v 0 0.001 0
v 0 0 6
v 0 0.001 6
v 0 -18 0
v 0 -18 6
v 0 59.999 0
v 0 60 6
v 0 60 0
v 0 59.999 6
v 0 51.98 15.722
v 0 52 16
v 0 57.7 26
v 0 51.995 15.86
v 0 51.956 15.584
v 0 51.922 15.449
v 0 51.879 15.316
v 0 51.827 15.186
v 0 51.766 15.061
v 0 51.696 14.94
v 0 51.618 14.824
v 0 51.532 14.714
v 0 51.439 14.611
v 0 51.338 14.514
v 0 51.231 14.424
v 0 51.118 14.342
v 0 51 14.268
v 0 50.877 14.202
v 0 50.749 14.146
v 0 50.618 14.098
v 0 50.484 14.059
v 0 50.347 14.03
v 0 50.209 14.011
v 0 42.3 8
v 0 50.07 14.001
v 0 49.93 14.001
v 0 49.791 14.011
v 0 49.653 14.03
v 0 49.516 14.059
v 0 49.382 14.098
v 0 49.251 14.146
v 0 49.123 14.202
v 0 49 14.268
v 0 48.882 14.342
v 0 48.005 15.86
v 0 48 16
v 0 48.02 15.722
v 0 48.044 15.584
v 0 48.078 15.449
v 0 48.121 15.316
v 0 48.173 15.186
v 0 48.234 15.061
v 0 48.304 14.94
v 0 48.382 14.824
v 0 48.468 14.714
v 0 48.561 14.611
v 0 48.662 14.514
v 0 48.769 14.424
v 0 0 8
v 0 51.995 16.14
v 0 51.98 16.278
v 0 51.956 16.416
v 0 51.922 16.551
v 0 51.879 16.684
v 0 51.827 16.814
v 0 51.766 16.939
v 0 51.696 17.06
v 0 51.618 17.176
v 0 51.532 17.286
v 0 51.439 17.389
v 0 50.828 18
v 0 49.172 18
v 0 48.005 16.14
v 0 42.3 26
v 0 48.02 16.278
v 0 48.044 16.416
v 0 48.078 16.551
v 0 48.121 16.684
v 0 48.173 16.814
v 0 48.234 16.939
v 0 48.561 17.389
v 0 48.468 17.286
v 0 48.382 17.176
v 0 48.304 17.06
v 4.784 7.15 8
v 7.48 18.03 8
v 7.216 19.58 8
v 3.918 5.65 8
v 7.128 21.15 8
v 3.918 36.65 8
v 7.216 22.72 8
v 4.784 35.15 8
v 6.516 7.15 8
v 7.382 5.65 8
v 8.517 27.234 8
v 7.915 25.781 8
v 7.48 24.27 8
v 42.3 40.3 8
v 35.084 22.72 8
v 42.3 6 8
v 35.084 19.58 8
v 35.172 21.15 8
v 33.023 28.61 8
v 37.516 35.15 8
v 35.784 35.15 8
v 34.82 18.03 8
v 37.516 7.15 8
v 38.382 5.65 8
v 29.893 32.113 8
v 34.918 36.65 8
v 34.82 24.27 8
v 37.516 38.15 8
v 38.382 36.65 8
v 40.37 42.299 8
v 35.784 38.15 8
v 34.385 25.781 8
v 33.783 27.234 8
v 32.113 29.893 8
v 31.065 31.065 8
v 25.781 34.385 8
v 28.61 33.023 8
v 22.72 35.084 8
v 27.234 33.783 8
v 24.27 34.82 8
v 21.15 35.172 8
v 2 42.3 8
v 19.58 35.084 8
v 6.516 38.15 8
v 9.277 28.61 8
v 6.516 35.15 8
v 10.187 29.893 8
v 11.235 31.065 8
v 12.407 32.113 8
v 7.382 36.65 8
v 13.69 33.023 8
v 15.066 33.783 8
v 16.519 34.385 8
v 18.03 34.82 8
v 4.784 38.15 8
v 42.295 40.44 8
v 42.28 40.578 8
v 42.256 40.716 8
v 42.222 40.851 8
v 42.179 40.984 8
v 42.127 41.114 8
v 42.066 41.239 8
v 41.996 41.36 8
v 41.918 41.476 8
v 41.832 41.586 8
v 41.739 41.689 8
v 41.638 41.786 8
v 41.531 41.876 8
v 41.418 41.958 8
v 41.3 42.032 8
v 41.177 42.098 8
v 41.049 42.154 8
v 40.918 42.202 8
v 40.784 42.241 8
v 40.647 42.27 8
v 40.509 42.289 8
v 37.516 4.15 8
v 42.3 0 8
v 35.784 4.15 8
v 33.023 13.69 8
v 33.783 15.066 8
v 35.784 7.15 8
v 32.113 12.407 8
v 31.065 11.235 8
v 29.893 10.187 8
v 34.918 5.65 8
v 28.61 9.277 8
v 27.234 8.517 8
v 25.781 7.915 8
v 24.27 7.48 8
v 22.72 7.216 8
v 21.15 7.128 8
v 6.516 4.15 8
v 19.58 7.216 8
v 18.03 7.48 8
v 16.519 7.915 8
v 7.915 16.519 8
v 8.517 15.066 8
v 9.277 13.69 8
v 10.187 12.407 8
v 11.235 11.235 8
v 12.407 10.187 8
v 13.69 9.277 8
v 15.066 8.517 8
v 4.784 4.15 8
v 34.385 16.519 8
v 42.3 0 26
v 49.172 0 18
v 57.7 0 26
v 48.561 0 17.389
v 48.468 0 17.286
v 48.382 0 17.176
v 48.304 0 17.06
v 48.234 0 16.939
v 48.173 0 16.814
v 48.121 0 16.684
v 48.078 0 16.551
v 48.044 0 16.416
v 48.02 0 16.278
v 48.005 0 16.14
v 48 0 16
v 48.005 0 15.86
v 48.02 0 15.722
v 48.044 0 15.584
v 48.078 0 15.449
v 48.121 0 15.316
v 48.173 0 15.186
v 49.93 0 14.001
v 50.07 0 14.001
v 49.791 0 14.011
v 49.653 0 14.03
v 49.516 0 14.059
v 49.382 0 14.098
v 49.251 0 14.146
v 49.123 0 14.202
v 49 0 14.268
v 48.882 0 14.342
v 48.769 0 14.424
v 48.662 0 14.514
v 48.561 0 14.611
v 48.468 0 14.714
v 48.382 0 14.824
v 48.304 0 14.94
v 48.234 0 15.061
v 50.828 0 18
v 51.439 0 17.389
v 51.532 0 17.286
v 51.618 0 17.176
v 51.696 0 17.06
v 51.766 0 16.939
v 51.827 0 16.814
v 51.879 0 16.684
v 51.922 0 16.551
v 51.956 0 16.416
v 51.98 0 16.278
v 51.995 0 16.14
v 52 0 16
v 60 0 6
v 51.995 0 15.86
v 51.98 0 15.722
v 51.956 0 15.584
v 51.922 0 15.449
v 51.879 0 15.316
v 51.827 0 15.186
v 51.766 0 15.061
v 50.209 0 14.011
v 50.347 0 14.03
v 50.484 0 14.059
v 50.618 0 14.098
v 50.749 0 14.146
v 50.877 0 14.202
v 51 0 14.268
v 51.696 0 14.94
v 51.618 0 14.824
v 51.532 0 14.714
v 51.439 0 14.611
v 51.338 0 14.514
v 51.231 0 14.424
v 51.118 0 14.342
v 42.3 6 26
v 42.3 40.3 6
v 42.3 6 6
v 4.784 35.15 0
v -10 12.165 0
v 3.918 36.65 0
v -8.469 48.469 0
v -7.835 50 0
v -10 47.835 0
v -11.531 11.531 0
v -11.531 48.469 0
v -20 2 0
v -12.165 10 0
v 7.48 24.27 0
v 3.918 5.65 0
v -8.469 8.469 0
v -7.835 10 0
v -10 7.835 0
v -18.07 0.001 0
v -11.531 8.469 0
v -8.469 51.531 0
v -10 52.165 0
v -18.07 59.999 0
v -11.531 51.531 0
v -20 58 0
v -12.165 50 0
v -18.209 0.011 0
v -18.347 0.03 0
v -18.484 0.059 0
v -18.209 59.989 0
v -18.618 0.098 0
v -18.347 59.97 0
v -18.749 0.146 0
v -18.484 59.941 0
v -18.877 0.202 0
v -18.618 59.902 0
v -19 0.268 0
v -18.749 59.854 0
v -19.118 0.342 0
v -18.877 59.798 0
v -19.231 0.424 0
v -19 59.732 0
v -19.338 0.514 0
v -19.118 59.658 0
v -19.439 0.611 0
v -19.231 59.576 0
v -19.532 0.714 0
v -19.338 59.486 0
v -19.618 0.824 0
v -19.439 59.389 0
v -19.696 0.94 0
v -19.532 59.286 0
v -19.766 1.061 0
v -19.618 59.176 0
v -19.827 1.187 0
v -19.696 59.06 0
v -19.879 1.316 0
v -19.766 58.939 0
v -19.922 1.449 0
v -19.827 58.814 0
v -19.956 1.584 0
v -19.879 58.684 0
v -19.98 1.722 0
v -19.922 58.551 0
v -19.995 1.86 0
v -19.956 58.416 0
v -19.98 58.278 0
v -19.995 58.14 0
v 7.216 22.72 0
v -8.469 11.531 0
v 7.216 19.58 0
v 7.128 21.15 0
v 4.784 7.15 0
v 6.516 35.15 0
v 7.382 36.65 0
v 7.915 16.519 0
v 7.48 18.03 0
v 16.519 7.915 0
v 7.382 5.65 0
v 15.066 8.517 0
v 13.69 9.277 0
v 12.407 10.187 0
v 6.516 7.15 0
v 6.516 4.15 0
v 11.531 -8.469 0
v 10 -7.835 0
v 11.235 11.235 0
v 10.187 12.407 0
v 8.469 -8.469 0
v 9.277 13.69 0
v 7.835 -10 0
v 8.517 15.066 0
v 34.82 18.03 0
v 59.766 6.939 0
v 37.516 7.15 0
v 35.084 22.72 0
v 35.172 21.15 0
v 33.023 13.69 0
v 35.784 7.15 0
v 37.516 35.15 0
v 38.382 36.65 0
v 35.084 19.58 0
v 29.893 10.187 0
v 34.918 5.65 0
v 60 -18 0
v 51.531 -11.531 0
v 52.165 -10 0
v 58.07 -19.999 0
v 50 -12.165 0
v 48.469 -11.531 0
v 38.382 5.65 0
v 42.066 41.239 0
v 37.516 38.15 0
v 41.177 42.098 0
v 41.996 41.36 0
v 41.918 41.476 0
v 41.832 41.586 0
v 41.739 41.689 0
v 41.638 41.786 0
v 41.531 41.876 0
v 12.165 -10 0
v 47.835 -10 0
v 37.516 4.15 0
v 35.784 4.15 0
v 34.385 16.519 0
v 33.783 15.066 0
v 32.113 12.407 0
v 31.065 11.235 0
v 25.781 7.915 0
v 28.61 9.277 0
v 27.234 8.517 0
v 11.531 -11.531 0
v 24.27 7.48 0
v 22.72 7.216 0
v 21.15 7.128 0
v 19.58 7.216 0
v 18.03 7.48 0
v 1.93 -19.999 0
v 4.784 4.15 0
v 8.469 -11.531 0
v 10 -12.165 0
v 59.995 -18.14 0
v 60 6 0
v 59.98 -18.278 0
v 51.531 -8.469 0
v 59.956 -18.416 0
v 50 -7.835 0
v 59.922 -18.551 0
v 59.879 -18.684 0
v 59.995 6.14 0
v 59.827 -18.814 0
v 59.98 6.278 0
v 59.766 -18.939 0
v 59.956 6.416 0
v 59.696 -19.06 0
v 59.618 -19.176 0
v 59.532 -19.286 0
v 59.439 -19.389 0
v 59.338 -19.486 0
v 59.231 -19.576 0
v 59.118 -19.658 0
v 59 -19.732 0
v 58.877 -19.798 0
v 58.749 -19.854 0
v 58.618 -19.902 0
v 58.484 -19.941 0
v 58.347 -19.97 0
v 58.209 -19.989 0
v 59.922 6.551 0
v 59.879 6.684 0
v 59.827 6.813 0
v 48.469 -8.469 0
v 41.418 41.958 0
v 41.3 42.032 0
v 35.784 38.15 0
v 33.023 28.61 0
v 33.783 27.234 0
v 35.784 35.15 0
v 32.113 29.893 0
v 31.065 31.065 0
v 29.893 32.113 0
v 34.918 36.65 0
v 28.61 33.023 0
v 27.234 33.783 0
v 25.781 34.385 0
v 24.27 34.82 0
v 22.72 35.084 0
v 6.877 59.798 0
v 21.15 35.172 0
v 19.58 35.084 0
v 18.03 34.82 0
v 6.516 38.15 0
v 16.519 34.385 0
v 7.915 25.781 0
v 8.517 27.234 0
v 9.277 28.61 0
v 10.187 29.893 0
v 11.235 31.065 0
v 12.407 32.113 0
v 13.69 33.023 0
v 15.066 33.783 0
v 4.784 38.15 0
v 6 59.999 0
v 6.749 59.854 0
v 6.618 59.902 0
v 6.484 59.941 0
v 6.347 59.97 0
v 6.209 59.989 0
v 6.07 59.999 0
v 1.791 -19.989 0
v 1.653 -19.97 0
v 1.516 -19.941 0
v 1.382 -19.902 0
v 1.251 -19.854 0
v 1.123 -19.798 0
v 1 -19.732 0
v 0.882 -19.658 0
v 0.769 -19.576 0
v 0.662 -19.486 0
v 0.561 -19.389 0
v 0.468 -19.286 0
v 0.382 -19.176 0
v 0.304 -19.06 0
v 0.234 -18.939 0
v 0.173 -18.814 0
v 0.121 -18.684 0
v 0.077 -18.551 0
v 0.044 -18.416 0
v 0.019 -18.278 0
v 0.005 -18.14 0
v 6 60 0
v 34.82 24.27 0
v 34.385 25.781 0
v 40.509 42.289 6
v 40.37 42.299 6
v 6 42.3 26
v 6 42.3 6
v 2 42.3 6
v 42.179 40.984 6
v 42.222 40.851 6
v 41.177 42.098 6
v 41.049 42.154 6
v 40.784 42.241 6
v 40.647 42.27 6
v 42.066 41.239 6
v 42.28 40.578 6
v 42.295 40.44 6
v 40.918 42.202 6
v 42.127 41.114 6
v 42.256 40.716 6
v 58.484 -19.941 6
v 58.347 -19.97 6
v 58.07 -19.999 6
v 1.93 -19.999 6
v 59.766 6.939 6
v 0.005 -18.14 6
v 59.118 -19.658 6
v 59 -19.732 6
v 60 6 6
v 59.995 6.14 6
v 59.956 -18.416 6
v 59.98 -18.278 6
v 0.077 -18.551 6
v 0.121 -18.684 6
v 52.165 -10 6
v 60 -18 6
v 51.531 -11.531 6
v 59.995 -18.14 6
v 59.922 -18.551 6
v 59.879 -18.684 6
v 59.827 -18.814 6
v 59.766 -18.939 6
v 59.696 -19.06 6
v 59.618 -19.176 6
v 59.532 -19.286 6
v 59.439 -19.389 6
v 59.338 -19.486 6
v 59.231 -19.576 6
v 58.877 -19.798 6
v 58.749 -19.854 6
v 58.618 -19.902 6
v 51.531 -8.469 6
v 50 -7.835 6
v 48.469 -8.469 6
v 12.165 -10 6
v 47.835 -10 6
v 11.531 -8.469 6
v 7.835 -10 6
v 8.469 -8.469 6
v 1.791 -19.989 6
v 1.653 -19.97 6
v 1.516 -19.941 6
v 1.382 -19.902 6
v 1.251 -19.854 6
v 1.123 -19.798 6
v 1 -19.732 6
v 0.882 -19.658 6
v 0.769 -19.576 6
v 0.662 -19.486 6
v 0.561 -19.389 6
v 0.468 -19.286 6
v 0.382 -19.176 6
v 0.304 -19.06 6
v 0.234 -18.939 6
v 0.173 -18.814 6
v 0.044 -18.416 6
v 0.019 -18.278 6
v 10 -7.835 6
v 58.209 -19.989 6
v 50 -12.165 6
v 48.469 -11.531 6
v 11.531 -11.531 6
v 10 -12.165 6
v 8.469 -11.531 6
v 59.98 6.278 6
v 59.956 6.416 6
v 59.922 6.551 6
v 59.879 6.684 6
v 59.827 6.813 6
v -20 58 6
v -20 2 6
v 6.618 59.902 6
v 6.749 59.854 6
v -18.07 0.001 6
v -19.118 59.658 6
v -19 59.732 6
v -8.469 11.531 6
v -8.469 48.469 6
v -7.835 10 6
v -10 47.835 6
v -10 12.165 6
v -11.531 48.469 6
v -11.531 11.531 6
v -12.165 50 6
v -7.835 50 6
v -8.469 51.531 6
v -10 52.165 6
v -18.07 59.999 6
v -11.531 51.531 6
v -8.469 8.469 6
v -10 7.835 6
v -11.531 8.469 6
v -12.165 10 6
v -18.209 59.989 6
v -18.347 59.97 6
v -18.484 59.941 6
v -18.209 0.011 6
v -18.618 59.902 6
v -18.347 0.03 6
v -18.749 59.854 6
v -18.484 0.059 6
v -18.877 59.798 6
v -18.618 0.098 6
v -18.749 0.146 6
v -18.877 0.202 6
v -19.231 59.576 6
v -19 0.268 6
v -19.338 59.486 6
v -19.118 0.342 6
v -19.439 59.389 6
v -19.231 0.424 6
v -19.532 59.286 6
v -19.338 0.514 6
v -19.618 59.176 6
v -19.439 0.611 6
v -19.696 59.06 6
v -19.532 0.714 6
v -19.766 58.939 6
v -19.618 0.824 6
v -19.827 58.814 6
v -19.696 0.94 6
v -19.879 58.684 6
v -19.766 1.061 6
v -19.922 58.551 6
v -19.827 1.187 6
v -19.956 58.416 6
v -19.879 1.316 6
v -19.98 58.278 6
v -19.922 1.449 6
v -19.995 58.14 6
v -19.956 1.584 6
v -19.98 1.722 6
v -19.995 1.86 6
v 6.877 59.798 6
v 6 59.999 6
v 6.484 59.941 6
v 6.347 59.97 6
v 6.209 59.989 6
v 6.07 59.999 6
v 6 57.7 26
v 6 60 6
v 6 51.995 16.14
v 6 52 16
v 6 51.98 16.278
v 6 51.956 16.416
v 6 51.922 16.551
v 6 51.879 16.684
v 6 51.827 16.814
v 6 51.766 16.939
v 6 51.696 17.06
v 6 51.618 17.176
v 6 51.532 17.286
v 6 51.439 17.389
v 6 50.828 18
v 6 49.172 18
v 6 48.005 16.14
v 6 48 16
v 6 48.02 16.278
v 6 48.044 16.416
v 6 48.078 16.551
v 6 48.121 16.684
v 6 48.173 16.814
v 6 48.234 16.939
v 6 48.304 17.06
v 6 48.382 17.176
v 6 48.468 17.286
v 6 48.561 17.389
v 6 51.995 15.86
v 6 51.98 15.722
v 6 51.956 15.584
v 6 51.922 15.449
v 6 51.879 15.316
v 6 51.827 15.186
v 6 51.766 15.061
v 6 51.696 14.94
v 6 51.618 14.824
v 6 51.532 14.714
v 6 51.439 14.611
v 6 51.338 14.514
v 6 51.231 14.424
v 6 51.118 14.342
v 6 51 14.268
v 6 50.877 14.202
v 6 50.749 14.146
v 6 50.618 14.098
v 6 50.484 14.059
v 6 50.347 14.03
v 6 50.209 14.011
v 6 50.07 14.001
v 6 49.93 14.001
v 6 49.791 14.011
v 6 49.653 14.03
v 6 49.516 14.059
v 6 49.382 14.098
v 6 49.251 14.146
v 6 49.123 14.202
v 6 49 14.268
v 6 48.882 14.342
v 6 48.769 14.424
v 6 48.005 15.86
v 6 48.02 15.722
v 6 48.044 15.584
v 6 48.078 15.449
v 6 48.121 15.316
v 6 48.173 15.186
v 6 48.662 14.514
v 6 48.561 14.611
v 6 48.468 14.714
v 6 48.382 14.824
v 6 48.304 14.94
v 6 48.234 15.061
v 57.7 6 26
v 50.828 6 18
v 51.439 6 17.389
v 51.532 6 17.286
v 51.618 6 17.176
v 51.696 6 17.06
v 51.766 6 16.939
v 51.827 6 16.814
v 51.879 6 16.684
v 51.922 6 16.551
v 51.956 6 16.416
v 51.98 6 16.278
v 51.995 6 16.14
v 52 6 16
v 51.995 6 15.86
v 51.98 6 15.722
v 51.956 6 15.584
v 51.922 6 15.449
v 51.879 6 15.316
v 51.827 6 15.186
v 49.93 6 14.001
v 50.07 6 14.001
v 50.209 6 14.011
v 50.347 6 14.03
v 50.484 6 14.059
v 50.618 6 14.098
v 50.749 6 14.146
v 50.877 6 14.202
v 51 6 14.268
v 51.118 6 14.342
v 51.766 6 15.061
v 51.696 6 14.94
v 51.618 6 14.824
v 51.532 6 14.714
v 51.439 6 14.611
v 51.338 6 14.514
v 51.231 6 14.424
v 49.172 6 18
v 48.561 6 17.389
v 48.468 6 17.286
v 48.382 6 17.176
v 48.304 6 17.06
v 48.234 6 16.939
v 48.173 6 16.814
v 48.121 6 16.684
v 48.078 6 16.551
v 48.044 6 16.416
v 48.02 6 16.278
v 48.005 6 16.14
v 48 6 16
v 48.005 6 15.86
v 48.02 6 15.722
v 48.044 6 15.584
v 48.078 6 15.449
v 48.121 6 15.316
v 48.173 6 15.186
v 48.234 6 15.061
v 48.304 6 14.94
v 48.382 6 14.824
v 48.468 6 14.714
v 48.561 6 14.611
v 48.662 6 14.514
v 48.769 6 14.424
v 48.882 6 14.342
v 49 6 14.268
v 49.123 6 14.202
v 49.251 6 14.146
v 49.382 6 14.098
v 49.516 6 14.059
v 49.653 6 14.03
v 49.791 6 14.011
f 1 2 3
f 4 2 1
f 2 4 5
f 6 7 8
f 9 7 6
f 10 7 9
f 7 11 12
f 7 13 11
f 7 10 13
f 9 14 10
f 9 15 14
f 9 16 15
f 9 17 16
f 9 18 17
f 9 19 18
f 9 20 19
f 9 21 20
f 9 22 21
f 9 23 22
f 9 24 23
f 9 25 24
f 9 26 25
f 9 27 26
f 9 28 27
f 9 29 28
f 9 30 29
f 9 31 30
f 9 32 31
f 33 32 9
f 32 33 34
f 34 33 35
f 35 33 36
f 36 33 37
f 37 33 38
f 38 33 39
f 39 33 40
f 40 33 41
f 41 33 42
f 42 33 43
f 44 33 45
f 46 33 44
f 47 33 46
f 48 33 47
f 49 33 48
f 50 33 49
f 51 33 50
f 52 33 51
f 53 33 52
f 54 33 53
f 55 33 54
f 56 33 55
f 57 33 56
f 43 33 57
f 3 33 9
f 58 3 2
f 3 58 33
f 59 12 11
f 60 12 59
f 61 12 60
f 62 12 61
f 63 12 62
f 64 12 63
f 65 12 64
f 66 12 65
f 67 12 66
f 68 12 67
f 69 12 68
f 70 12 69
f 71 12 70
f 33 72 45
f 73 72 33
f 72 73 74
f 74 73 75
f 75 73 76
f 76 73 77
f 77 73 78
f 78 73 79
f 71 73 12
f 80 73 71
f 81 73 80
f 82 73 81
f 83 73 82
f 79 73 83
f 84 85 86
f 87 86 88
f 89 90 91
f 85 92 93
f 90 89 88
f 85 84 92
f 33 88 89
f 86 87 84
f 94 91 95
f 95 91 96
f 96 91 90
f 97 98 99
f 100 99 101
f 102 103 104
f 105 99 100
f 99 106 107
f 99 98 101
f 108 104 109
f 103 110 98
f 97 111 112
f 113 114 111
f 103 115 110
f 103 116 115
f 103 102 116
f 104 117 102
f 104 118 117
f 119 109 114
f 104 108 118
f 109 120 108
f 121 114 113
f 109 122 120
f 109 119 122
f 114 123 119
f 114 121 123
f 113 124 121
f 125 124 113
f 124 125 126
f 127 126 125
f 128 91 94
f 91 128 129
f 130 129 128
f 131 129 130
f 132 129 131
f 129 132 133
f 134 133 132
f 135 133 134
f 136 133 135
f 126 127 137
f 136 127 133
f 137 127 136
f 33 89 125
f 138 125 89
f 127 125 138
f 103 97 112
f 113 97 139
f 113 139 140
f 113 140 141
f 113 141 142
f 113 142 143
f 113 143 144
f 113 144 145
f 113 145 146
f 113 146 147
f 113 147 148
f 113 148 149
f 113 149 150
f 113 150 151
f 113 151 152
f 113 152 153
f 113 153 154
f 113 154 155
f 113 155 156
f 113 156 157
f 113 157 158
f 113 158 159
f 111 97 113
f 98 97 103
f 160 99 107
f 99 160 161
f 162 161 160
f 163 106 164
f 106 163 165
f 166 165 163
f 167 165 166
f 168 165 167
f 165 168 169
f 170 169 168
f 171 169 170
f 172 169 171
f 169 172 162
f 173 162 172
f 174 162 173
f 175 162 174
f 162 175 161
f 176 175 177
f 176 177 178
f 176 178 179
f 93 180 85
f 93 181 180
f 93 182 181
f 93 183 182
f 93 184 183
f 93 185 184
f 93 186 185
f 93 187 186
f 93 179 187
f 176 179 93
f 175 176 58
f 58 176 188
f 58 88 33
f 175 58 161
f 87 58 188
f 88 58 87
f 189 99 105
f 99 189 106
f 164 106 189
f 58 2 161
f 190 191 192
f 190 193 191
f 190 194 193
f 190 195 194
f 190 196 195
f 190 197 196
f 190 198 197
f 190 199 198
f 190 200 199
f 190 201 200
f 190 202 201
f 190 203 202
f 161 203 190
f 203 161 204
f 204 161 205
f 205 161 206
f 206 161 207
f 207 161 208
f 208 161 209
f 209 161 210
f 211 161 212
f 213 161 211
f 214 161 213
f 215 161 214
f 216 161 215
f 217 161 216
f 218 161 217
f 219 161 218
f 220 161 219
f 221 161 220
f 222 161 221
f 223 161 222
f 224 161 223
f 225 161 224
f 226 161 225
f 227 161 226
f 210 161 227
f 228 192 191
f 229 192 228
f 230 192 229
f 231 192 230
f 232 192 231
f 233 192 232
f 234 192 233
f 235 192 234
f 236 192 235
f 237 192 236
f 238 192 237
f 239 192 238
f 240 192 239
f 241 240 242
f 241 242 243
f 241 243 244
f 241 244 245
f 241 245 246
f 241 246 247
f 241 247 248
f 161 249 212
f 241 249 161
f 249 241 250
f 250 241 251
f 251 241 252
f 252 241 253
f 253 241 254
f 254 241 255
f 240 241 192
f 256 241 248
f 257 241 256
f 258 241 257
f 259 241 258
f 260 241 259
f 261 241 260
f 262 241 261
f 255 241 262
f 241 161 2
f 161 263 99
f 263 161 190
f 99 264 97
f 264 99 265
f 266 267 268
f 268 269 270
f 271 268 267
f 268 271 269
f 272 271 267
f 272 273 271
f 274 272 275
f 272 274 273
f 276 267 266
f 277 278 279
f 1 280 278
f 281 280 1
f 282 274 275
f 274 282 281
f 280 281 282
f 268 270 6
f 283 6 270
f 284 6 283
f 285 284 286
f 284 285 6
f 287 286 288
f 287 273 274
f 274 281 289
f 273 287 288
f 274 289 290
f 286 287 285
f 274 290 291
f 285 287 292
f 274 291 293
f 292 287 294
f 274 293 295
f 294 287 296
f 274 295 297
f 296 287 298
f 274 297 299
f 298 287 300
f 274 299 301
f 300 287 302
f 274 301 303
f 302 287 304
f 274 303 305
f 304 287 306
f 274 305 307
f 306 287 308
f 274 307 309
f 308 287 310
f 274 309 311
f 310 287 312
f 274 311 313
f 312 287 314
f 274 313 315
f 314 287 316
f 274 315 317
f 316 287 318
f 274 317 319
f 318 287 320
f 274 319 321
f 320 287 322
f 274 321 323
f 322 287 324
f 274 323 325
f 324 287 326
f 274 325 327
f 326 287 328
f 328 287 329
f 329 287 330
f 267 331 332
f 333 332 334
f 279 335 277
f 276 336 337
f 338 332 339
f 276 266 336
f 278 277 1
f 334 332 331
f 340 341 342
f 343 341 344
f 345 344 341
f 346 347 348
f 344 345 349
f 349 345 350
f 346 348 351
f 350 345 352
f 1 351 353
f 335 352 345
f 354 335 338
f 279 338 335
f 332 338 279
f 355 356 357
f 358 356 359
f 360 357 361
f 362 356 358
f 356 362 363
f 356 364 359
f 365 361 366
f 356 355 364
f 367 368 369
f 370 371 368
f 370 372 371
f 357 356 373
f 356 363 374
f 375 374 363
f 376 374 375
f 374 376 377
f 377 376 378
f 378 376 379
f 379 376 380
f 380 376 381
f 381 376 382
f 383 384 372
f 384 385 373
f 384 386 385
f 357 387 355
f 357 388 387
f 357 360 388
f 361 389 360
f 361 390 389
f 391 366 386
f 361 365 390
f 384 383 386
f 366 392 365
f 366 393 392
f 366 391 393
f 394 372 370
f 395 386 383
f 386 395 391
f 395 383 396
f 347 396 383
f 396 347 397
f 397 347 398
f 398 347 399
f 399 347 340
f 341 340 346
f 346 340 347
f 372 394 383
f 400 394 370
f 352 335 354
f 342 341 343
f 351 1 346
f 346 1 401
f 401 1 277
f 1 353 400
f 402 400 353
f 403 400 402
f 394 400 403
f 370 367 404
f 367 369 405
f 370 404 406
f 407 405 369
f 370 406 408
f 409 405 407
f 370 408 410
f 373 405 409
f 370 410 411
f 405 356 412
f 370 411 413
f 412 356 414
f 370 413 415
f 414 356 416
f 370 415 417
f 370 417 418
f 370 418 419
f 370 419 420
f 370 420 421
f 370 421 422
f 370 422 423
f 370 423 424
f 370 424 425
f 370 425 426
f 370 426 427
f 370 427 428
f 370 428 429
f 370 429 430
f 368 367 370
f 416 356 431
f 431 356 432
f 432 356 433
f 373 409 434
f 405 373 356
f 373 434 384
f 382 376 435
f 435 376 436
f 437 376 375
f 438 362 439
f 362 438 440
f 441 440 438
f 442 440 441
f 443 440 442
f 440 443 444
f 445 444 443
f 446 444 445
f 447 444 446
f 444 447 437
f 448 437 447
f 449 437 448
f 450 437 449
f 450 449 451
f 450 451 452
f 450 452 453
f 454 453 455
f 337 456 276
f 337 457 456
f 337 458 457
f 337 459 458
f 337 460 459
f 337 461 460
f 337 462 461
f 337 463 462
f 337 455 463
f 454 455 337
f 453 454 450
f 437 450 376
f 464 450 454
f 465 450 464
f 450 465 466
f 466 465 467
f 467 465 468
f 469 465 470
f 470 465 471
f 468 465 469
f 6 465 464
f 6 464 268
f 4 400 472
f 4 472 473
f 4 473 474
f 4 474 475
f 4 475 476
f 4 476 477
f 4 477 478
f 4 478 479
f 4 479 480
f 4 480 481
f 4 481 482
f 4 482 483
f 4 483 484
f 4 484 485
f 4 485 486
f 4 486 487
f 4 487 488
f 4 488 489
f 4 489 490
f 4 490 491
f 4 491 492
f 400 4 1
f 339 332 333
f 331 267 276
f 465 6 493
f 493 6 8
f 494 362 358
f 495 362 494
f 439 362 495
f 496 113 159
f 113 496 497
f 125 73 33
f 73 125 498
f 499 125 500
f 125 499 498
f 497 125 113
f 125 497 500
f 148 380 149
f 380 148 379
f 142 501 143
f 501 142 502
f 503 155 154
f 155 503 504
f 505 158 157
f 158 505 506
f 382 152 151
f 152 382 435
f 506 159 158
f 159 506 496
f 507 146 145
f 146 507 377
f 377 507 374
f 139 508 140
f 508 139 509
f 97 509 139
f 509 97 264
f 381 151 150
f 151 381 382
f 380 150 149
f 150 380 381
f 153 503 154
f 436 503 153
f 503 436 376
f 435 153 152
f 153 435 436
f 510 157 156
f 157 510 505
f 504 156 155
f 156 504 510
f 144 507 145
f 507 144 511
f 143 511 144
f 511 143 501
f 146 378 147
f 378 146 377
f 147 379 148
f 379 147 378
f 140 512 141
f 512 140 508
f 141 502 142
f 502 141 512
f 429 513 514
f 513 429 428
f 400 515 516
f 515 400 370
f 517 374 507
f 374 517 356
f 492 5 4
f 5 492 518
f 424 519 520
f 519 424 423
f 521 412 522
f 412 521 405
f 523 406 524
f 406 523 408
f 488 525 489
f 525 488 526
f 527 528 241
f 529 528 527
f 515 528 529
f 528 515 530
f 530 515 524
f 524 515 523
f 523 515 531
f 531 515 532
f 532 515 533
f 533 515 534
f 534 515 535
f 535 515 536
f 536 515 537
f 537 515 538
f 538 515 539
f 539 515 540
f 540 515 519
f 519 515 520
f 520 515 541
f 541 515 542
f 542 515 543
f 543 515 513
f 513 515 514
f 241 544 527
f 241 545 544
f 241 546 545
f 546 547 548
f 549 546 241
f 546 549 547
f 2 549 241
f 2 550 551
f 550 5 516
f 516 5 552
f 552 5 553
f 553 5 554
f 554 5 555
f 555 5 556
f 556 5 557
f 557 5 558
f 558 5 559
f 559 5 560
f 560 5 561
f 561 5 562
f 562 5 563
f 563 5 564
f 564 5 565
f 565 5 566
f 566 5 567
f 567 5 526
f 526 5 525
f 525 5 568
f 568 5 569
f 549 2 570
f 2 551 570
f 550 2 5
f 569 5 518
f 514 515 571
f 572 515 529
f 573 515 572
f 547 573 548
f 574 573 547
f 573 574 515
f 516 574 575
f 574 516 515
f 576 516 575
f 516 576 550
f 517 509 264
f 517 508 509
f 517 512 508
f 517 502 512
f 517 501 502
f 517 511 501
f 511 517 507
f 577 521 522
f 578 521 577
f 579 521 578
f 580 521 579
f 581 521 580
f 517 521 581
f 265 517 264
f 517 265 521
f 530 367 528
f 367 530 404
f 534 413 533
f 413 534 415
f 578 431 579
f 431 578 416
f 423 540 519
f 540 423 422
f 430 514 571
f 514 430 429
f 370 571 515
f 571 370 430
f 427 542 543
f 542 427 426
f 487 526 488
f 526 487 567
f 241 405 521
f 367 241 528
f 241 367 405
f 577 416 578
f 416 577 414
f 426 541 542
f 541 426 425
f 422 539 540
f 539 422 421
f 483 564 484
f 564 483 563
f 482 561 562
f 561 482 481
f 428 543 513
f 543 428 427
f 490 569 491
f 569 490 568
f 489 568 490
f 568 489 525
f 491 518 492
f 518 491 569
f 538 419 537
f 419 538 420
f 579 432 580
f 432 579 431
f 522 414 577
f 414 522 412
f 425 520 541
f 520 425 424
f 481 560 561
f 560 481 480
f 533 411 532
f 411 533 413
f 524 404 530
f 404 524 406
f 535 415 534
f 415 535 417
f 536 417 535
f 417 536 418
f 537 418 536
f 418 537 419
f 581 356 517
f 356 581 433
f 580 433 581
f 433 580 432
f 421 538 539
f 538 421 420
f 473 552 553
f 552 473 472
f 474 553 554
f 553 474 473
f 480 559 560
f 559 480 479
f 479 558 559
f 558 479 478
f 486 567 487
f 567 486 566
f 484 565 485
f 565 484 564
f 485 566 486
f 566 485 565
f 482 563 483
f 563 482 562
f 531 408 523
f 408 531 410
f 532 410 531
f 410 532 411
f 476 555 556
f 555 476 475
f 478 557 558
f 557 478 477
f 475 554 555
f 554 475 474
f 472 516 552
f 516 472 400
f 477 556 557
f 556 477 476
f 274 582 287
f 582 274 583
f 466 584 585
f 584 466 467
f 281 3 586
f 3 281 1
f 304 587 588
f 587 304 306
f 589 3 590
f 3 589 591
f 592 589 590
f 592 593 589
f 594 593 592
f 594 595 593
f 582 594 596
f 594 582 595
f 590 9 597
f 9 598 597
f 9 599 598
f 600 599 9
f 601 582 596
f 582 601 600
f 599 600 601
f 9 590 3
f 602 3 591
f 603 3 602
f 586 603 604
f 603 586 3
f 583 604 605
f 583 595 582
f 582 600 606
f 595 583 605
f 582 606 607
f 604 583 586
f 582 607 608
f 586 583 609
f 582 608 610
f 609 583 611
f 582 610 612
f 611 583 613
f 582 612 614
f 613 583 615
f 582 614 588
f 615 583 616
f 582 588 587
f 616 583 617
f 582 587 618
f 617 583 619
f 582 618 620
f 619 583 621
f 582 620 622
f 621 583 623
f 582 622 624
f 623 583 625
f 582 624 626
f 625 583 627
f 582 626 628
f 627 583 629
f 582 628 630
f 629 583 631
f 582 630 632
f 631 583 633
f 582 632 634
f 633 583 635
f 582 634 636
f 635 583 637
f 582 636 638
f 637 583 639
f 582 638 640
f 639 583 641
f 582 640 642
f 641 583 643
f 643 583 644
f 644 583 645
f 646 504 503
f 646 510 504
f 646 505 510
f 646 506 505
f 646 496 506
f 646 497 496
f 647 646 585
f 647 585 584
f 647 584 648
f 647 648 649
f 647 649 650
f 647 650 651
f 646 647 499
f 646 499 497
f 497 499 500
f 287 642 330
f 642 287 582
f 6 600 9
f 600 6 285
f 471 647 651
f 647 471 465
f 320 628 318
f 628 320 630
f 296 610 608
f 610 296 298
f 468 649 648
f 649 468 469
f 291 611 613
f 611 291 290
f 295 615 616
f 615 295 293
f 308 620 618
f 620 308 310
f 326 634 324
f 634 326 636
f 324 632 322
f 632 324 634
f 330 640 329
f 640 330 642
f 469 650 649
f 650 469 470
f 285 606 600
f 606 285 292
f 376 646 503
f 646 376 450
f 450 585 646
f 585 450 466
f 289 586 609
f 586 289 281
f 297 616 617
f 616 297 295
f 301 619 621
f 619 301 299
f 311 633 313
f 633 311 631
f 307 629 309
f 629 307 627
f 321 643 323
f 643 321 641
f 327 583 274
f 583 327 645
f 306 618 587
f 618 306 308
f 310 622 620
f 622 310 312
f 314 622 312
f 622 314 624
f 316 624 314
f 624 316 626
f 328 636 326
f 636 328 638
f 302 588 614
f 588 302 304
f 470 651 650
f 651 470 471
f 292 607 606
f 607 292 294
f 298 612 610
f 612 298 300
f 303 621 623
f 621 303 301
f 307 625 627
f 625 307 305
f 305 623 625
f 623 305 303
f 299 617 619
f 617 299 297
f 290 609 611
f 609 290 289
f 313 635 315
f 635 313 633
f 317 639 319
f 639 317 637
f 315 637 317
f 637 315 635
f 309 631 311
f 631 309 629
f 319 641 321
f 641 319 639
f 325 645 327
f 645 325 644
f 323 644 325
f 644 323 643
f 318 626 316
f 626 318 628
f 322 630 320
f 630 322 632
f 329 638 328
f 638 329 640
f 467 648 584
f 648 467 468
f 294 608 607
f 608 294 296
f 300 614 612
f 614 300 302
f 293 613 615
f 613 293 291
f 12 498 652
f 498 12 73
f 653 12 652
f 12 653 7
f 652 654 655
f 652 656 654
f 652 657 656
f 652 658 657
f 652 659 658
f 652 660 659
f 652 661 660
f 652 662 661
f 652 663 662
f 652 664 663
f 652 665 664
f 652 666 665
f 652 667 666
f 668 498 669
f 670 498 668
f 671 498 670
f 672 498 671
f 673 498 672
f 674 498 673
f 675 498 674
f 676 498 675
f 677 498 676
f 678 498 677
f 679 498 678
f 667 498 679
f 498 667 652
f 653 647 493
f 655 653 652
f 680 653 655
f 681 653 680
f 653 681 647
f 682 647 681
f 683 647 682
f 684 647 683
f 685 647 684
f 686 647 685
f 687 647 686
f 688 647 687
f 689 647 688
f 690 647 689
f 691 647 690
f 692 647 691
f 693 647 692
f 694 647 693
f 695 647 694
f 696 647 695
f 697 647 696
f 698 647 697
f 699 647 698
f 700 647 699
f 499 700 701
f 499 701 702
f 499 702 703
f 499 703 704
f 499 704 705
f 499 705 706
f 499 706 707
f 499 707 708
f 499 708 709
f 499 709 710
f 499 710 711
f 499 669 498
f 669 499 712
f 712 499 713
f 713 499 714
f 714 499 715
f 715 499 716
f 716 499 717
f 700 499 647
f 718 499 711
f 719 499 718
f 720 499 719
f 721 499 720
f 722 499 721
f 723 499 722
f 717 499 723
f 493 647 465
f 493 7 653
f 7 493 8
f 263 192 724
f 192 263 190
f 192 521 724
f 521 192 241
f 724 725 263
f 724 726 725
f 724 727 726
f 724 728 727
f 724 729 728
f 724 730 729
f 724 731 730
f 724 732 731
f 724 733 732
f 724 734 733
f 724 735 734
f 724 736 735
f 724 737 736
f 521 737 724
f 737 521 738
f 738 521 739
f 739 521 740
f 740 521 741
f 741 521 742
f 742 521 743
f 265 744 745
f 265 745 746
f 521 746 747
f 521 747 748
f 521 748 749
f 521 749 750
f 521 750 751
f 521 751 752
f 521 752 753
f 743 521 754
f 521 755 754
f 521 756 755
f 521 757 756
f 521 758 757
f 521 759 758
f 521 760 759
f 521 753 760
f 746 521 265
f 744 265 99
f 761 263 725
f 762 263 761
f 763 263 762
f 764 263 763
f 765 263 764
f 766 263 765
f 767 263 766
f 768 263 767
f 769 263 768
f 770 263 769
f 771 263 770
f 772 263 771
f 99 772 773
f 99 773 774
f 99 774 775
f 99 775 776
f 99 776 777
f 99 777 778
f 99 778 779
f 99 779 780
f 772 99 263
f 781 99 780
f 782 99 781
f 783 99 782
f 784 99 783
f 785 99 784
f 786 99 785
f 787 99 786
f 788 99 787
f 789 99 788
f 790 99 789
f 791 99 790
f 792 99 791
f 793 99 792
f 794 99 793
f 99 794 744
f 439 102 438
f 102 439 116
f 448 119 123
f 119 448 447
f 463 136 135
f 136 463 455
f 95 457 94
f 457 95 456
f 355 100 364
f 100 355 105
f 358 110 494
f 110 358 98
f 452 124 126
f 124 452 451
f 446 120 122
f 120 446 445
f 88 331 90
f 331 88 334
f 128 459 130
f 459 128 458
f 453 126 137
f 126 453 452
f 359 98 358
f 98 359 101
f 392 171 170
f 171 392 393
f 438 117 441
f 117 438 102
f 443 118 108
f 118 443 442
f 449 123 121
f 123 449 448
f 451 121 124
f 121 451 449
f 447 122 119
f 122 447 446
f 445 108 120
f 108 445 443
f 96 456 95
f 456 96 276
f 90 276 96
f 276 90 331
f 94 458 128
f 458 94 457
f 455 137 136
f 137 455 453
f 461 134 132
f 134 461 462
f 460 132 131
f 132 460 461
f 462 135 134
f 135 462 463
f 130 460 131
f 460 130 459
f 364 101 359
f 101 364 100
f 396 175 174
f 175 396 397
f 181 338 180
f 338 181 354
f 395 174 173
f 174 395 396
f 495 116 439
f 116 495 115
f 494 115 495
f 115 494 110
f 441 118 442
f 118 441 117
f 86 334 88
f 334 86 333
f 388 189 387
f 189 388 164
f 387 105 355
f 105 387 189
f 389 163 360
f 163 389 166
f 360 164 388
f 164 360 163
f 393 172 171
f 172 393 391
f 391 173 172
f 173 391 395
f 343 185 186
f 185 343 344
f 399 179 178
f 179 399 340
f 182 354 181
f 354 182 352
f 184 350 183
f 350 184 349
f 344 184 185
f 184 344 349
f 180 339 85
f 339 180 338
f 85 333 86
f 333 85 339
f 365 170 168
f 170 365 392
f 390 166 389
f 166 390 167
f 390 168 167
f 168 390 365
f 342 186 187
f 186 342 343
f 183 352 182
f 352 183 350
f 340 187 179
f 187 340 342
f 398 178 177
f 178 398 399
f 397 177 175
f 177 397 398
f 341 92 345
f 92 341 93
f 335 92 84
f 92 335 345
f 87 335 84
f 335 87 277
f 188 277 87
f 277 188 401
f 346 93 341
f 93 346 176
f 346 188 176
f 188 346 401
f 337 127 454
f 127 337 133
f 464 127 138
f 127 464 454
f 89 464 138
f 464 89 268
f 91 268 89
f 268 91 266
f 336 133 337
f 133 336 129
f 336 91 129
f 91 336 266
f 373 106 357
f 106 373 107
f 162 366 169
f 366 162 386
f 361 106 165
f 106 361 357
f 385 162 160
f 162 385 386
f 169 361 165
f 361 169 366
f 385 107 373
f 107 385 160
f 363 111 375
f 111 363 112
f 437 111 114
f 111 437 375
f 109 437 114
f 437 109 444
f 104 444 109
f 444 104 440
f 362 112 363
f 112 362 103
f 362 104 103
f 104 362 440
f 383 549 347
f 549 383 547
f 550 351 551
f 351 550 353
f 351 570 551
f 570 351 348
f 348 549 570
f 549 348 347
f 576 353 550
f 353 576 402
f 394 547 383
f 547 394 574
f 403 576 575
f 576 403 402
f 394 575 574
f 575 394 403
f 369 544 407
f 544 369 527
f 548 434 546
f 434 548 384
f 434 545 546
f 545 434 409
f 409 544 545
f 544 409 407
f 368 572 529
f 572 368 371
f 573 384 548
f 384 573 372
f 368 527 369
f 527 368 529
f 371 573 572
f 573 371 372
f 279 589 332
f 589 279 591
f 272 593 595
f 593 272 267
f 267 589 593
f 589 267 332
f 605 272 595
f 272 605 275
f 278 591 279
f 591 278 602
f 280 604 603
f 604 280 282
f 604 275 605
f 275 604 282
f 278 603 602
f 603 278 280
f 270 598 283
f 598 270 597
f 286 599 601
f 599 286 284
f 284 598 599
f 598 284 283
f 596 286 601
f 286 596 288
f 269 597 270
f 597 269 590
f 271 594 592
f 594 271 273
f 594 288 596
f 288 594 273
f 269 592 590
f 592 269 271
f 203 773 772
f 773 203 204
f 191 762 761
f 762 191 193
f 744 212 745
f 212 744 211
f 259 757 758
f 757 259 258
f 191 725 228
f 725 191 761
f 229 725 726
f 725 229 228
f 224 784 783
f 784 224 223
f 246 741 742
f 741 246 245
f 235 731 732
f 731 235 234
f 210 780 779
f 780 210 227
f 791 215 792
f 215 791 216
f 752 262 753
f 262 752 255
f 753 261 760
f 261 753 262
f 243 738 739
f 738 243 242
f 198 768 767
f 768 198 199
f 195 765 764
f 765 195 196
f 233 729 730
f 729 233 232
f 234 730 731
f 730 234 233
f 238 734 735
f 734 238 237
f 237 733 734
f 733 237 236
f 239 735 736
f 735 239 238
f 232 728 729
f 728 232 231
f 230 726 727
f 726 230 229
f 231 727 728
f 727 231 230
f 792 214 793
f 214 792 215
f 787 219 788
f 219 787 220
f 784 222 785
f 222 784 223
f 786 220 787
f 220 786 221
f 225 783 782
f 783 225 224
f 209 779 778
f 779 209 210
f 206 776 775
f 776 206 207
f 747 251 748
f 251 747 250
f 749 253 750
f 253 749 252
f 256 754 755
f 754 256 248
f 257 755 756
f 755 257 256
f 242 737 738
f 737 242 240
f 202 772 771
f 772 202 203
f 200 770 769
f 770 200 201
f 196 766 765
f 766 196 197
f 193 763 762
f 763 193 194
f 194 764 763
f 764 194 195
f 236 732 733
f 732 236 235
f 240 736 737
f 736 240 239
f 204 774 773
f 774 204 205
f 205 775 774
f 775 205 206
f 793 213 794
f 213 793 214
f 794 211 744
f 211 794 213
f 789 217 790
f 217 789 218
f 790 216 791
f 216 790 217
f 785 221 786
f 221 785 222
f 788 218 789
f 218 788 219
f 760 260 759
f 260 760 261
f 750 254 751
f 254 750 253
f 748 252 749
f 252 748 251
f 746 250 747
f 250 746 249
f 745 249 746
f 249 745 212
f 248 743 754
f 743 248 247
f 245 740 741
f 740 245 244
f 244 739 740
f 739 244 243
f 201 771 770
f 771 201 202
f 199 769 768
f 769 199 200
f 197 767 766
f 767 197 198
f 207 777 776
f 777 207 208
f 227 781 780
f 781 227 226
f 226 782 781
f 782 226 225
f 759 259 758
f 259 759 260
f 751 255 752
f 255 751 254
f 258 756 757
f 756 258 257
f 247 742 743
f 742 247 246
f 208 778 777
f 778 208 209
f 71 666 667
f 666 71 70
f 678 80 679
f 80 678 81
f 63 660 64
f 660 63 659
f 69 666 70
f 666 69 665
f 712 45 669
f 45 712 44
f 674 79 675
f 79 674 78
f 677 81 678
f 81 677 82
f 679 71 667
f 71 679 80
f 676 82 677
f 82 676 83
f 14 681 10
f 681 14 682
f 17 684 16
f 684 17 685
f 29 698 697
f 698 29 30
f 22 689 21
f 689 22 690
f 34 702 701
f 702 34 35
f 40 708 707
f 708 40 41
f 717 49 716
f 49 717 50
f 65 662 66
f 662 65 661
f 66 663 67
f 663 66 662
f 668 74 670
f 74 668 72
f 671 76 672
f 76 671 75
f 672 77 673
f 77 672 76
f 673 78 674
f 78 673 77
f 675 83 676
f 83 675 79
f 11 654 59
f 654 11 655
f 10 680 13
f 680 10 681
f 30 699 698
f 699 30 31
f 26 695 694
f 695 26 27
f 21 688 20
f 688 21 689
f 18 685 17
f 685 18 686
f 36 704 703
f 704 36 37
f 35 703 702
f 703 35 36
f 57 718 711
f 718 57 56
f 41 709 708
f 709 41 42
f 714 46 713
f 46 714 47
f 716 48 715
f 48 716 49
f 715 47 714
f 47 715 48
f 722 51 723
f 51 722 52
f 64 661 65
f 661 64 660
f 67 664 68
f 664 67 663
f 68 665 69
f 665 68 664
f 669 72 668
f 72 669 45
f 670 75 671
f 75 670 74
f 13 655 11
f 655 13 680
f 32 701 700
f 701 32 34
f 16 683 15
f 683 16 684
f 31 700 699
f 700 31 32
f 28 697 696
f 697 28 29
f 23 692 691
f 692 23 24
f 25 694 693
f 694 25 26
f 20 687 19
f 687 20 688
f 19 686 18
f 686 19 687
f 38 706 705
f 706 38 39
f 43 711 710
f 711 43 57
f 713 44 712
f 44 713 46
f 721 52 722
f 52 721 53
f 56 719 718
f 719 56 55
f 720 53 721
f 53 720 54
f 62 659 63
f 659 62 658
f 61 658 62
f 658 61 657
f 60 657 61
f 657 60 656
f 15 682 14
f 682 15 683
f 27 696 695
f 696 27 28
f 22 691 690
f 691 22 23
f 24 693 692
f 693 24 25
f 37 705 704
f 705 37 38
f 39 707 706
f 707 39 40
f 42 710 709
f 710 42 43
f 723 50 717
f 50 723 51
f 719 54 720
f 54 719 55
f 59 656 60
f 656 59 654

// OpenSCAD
// file: trunctear.scad
//A module for truncated tear drops.

trunctear(1, 0.5, $fn = 90);

module trunctear(height, radian)
{
    hull()
    {
        cylinder(h = height, r = radian);
        translate([0, radian/2, height/2])
            cube([2*(radian*(2*cos(45)-1)), radian, height], center = true);
    }
}
// file: polyhole.scad
// The Cylinder is dead! Long live the Cylinder!
// A module for a polyhole by radius, based on Nophead's work.

module polyhole(h, r, cent = false)
{
    n = max(round(4 * r), 3);
    cylinder(h = h, r = r / cos(180 / n), $fn = n, center = cent);
}
// main file
// A mount for the motors of the x and y axis.

use<polyhole.scad>
use<trunctear.scad>

CoreMotorMount();

module CoreMotorMount()
{
    difference()
    {
        union()
        {
            hull()
            {
                translate([1, 1, 4])
                    cube([2, 2, 8], center = true);
                translate([41.3, 1, 4])
                    cube([2, 2, 8], center = true);
                translate([1, 41.3, 4])
                    cube([2, 2, 8], center = true);
                translate([40.3, 40.3, 0])
                    cylinder(h = 8, r = 2, $fn = 90);
            }
            hull()
            {
                translate([2, -18, 0])
                    cylinder(h = 6, r = 2, $fn = 90);
                translate([58, -18, 0])
                    cylinder(h = 6, r = 2, $fn = 90);
                translate([58, 6, 0])
                    cylinder(h = 6, r = 2, $fn = 90);
                translate([2, 18, 0])
                    cylinder(h = 6, r = 2, $fn = 90);
                translate([40.3, 40.3, 0])
                    cylinder(h = 6, r = 2, $fn = 90);
            }
            hull()
            {
                translate([-18, 2, 0])
                    cylinder(h = 6, r = 2, $fn = 90);
                translate([-18, 58, 0])
                    cylinder(h = 6, r = 2, $fn = 90);
                translate([6, 58, 0])
                    cylinder(h = 6, r = 2, $fn = 90);
                translate([18, 2, 0])
                    cylinder(h = 6, r = 2, $fn = 90);
                translate([40.3, 40.3, 0])
                    cylinder(h = 6, r = 2, $fn = 90);
            }
            hull()
            {
                translate([3, 51.15, 3])
                    cube([6, 17.7, 6], center = true);
                translate([3, 50, 16])
                    cube([6, 15.4, 20], center = true);
            }
            hull()
            {
                translate([51.15, 3, 3])
                    cube([17.7, 6, 6], center = true);
                translate([50, 3, 16])
                    cube([15.4, 6, 20], center = true);
            }
        }
        translate([21.15, 21.15, 0])
            polyhole(8, 14);
        translate([5.65, 5.65, 0])
            polyhole(8, 1.5);
        translate([5.65, 36.65, 0])
            polyhole(8, 1.5);
        translate([36.65, 5.65, 0])
            polyhole(8, 1.5);
        translate([36.65, 36.65, 0])
            polyhole(8, 1.5);
        translate([10, -10, 0])
            polyhole(6, 2);
        translate([50, -10, 0])
            polyhole(6, 2);
        translate([-10, 10, 0])
            polyhole(6, 2);
        translate([-10, 50, 0])
            polyhole(6, 2);
        translate([50, 0, 16])
            rotate([90, 0, 180])
                trunctear(7, 2, $fn = 90);
        translate([0, 50, 16])
            rotate([90, 0, 90])
                trunctear(7, 2, $fn = 90);
    }
}
